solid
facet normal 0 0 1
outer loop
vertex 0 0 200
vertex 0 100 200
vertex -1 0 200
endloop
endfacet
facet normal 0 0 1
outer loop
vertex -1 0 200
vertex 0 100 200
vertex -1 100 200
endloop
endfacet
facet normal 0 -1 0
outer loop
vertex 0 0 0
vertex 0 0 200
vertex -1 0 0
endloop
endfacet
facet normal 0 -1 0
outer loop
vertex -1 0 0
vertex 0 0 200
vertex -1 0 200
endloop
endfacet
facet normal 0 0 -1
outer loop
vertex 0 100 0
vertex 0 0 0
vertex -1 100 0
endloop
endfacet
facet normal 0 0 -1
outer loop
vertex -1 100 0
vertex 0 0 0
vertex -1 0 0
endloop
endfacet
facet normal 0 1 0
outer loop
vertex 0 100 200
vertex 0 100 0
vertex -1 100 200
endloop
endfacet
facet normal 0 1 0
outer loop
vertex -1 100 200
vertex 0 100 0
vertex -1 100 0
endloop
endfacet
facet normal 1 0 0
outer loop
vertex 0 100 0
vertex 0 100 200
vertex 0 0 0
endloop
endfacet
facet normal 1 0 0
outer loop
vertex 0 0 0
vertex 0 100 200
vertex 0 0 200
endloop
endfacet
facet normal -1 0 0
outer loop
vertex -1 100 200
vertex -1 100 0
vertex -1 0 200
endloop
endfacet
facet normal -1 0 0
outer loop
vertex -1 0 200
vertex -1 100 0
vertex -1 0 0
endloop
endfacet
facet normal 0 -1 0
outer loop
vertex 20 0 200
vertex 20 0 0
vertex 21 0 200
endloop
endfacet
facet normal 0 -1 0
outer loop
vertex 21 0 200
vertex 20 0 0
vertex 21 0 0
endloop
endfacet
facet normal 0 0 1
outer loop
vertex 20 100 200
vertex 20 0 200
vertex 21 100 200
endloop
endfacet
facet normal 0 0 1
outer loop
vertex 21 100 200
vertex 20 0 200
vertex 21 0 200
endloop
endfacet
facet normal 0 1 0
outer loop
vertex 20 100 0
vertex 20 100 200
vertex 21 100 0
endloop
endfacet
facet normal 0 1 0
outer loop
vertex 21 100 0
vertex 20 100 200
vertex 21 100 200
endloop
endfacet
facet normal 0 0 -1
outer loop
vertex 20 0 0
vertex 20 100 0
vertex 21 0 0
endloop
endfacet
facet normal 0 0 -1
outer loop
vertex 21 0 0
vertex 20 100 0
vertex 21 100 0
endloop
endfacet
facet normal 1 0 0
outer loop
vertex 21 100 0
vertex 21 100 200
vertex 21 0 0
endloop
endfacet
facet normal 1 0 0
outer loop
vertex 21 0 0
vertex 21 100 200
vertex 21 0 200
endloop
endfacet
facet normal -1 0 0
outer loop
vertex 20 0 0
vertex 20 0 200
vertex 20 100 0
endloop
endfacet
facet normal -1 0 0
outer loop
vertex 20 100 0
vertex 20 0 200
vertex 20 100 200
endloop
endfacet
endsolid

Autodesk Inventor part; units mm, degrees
ref_plane "YZ Plane" through (0, 0, 0) normal (1, 0, 0) x (0, 1, 0)
ref_plane "XZ Plane" through (0, 0, 0) normal (0, 1, 0) x (-1, 0, 0)
ref_plane "XY Plane" through (0, 0, 0) normal (0, 0, 1) x (1, 0, 0)
sketch "Sketch3" plane through (0, 0, 0) normal (1, 0, 0) x (0, 1, 0)
  line L0 (0, 0) -> (100, 0)
  line L1 (100, 0) -> (100, 200)
  line L2 (100, 200) -> (0, 200)
  line L3 (0, 200) -> (0, 0)
  dimension "d9" = 100
  dimension "d10" = 200
extrude "Extrusion3" add sketch "Sketch3" against normal blind 1
ref_plane "Work Plane2" through (20, 0, 0) normal (1, 0, 0) x (0, 0, -1)
sketch "Sketch4" plane through (20, 0, 0) normal (1, 0, 0) x (0, 0, -1)
  line L0 (0, 100) -> (0, 0) projected
  line L1 (-200, 0) -> (-200, 100) projected
  line L2 (0, 0) -> (-200, 0)
  line L3 (-200, 0) -> (-200, 100)
  line L4 (-200, 100) -> (0, 100)
  line L5 (0, 100) -> (0, 0)
extrude "Extrusion4" add sketch "Sketch4" along normal blind 1
properties part number "walls_yz"
